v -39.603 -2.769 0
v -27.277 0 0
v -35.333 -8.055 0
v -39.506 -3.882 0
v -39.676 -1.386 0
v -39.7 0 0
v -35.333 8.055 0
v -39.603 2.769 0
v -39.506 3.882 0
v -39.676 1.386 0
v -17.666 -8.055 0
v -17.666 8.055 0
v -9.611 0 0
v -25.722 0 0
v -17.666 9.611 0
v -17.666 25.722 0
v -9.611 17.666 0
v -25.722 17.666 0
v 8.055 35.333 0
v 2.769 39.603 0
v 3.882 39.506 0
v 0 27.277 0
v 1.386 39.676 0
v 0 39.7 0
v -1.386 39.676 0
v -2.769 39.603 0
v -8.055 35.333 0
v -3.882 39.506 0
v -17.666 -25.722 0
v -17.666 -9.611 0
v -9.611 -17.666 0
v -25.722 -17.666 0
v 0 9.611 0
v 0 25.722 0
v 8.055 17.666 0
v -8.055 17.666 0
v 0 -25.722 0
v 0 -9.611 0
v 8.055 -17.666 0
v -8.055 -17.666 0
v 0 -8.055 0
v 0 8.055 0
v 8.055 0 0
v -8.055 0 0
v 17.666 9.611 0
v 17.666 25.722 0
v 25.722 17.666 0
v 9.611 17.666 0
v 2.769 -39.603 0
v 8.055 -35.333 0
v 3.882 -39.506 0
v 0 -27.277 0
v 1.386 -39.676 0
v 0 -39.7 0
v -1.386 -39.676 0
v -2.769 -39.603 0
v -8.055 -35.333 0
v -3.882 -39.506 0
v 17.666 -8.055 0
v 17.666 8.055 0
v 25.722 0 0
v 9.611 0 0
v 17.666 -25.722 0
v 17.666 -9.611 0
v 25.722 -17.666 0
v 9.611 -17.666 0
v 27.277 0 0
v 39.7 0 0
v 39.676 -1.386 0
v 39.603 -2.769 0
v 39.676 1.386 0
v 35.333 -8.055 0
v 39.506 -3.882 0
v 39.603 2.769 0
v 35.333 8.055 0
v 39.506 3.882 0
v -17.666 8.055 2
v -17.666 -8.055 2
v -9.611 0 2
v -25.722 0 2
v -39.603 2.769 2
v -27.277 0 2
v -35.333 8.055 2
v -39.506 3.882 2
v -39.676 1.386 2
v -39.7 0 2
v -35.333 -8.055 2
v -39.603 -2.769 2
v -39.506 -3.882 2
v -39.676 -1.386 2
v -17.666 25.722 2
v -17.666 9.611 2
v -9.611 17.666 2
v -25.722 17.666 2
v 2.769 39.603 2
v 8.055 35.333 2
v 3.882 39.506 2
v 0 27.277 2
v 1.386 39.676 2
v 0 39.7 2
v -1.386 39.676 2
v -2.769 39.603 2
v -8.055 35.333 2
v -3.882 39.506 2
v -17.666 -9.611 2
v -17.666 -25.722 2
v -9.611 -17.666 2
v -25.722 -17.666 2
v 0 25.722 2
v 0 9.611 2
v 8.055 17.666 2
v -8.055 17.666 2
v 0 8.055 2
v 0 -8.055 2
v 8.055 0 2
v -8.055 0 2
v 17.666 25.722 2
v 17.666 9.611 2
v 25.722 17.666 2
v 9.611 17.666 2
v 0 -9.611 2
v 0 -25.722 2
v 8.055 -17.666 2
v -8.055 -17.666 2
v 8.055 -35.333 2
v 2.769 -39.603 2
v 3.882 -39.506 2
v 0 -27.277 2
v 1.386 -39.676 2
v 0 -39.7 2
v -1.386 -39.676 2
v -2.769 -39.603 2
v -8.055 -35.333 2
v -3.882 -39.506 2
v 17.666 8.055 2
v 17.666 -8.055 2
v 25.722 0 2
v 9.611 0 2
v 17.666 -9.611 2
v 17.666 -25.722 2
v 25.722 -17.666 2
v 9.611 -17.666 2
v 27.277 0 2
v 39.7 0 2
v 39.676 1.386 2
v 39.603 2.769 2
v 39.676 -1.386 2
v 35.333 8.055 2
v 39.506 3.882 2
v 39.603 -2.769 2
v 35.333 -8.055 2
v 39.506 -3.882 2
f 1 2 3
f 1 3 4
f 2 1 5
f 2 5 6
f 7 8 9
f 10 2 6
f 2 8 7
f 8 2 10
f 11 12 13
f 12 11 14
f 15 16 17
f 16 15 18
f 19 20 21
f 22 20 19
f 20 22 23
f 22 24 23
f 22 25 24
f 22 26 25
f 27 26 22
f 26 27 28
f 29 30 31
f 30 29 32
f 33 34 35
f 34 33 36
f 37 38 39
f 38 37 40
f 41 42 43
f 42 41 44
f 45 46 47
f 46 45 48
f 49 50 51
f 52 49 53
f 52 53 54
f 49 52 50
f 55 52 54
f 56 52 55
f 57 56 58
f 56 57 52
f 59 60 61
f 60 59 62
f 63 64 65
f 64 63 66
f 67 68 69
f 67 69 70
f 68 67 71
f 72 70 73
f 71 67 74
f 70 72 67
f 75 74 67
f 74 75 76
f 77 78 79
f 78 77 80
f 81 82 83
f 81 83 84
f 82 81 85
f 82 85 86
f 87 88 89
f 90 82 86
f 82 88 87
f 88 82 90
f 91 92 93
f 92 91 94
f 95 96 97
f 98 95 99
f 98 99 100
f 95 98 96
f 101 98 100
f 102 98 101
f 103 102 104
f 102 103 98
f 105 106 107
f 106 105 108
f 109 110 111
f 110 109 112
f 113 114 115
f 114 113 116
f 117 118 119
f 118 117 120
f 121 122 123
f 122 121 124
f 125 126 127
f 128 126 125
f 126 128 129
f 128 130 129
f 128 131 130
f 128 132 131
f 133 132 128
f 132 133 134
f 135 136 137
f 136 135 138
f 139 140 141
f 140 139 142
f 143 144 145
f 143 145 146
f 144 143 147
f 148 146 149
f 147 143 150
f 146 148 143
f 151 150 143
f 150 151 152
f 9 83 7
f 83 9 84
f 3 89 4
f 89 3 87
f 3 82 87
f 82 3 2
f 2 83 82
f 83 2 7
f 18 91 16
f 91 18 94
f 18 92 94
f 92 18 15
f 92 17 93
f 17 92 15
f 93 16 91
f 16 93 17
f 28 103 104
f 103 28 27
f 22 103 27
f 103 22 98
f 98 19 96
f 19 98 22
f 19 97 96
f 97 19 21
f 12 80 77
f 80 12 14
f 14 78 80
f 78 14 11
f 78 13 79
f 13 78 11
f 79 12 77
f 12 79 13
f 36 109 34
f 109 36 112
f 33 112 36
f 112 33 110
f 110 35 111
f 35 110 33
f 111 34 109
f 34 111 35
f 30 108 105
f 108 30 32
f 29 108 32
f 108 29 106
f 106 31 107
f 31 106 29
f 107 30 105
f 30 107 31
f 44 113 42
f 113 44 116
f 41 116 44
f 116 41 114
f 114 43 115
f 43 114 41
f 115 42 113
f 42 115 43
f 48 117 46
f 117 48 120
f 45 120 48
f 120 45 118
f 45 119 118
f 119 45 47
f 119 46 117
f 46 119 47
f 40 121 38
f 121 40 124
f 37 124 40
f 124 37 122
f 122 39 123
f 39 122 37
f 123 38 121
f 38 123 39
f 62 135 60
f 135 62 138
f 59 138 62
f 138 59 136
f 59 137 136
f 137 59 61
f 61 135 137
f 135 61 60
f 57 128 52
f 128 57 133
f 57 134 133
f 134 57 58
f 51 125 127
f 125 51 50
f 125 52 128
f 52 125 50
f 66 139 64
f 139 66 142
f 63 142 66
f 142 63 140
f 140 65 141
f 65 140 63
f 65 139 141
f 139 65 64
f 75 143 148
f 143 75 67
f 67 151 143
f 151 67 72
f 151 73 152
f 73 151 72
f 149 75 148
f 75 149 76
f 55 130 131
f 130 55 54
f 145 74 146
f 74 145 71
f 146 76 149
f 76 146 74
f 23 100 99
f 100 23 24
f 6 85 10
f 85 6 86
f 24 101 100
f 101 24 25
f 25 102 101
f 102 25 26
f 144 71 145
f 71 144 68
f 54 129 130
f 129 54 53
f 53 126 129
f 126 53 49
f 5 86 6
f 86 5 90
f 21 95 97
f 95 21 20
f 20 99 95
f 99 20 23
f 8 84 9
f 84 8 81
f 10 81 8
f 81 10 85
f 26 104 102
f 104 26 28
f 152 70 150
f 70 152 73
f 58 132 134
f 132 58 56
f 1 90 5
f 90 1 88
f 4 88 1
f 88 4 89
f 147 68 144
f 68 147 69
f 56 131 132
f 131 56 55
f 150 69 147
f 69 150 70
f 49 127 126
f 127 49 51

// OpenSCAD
// file: bellum_text_traced.scad
// bellum_text_traced.scad
// "Bellum" lettering traced from the source logo image with
// OpenCV (4x cubic upscale, threshold, morphological cleanup,
// approxPolyDP 2px). Coordinates are centered, Y-up, and
// normalized to 100 units of total width.
// Regenerate with scratchpad/trace2_emit.py if retuning.

module bellum_traced_2d() {
    polygon(points=[[-49.89,10.25],[-49.89,9.49],[-49.35,8.94],[-46.95,8.83],[-45.64,7.74],[-45.09,6.11],[-45.42,-2.07],[-45.09,-10.25],[-46.07,-11.56],[-49.24,-11.89],[-49.56,-12.32],[-49.45,-13.30],[-30.59,-13.41],[-28.08,-12.87],[-26.23,-11.45],[-25.03,-9.27],[-24.48,-6.65],[-25.03,-4.80],[-26.01,-3.27],[-29.28,-0.55],[-27.10,2.84],[-27.32,5.78],[-27.97,6.98],[-29.28,8.29],[-31.13,9.38],[-35.50,10.36],[-40.62,-1.42],[-39.97,-0.98],[-35.06,-0.98],[-33.10,-1.31],[-31.68,-1.96],[-30.04,-3.60],[-29.06,-5.89],[-29.06,-7.96],[-29.83,-9.49],[-31.35,-10.91],[-33.86,-11.67],[-37.35,-11.89],[-39.97,-11.34],[-40.95,-10.25],[-41.38,8.40],[-40.84,8.83],[-38.99,9.05],[-35.93,8.83],[-33.32,7.85],[-31.57,6.32],[-30.92,4.91],[-31.24,2.40],[-32.55,0.98],[-33.86,0.33],[-39.31,0.00],[-40.29,0.44],[-40.95,1.53],[-41.49,6.22]], paths=[[0, 1, 2, 3, 4, 5, 6, 7, 8, 9, 10, 11, 12, 13, 14, 15, 16, 17, 18, 19, 20, 21, 22, 23, 24, 25], [26, 27, 28, 29, 30, 31, 32, 33, 34, 35, 36, 37, 38, 39], [40, 41, 42, 43, 44, 45, 46, 47, 48, 49, 50, 51, 52, 53]]);
    polygon(points=[[-21.76,1.53],[-23.28,-0.44],[-23.72,-1.85],[-23.72,-3.82],[-22.96,-6.22],[-21.54,-7.63],[-19.79,-8.40],[-15.43,-8.40],[-13.69,-8.07],[-12.05,-7.09],[-10.09,-5.13],[-10.31,-4.69],[-11.07,-4.58],[-13.36,-6.43],[-15.76,-7.20],[-18.27,-6.54],[-20.34,-4.47],[-20.77,-3.49],[-20.67,-2.62],[-20.01,-2.18],[-18.48,-2.07],[-12.70,-2.40],[-12.05,-1.96],[-12.27,0.00],[-13.90,1.96],[-16.30,2.94],[-19.68,2.62],[-20.34,-0.22],[-19.47,0.98],[-17.61,1.96],[-15.98,1.53],[-14.78,0.00],[-14.99,-0.76],[-15.98,-0.98],[-20.01,-0.98]], paths=[[0, 1, 2, 3, 4, 5, 6, 7, 8, 9, 10, 11, 12, 13, 14, 15, 16, 17, 18, 19, 20, 21, 22, 23, 24, 25, 26], [27, 28, 29, 30, 31, 32, 33, 34]]);
    polygon(points=[[-3.87,12.98],[-4.85,12.87],[-6.60,12.00],[-8.02,10.80],[-7.80,10.25],[-6.49,9.60],[-6.16,8.62],[-6.16,-3.93],[-6.49,-6.54],[-7.36,-7.20],[-8.67,-7.31],[-9.00,-7.74],[-8.89,-8.29],[-8.23,-8.62],[-1.04,-8.40],[-1.04,-7.85],[-1.47,-7.42],[-3.44,-6.98],[-3.98,-5.78],[-3.76,11.01],[-3.44,11.67],[-3.44,12.54]], paths=[[0, 1, 2, 3, 4, 5, 6, 7, 8, 9, 10, 11, 12, 13, 14, 15, 16, 17, 18, 19, 20, 21]]);
    polygon(points=[[5.07,13.52],[4.31,13.41],[0.82,11.56],[-0.16,10.47],[0.27,9.71],[1.47,10.03],[2.13,9.49],[2.34,7.85],[2.24,-5.45],[1.58,-7.20],[-0.05,-7.63],[0.05,-8.18],[0.93,-8.51],[7.25,-8.51],[7.58,-8.18],[6.92,-7.20],[6.05,-7.20],[5.07,-6.32],[5.18,-1.85],[4.85,-0.65],[5.18,0.33],[5.18,11.34],[5.73,12.54],[5.62,13.20]], paths=[[0, 1, 2, 3, 4, 5, 6, 7, 8, 9, 10, 11, 12, 13, 14, 15, 16, 17, 18, 19, 20, 21, 22, 23]]);
    polygon(points=[[9.00,1.64],[9.11,0.87],[10.09,0.76],[10.74,0.00],[11.07,-0.98],[11.07,-5.56],[11.61,-7.31],[12.60,-8.18],[13.36,-8.51],[16.19,-8.51],[18.92,-7.31],[19.47,-7.31],[20.12,-8.18],[20.67,-8.29],[23.83,-8.18],[24.48,-7.74],[24.37,-6.87],[23.17,-6.87],[22.52,-6.32],[22.19,-0.33],[22.63,0.55],[23.61,1.31],[23.72,2.07],[17.83,2.18],[17.72,1.64],[19.25,0.98],[19.68,0.22],[19.68,-4.58],[18.38,-6.32],[16.74,-6.87],[15.65,-6.87],[14.67,-6.43],[13.69,-4.80],[13.69,0.22],[14.67,2.07],[10.41,2.29]], paths=[[0, 1, 2, 3, 4, 5, 6, 7, 8, 9, 10, 11, 12, 13, 14, 15, 16, 17, 18, 19, 20, 21, 22, 23, 24, 25, 26, 27, 28, 29, 30, 31, 32, 33, 34, 35]]);
    polygon(points=[[27.21,1.85],[27.21,1.20],[28.95,0.11],[29.06,-6.22],[28.52,-7.20],[26.55,-7.52],[26.44,-8.29],[26.77,-8.62],[30.59,-8.83],[32.99,-8.62],[33.53,-8.29],[33.10,-7.31],[32.12,-7.20],[31.57,-6.65],[31.57,-0.87],[32.22,0.00],[34.41,0.98],[36.04,0.76],[36.70,0.11],[37.24,-1.53],[37.24,-6.00],[36.91,-6.76],[35.50,-7.74],[35.61,-8.18],[36.48,-8.51],[40.84,-8.51],[41.60,-8.07],[41.60,-7.74],[40.51,-7.20],[39.97,-6.43],[39.97,-1.96],[40.73,-0.55],[42.91,0.98],[44.66,0.65],[45.53,-0.33],[45.75,-1.09],[45.53,-6.43],[44.98,-7.20],[44.00,-7.52],[43.78,-8.07],[44.66,-8.51],[49.45,-8.62],[50.00,-8.18],[49.56,-7.42],[48.80,-7.42],[48.15,-6.76],[48.36,0.00],[47.93,1.31],[46.51,2.62],[43.68,2.94],[41.82,2.07],[40.29,0.87],[39.86,0.87],[38.66,2.51],[37.35,2.94],[34.95,2.51],[32.22,1.20],[31.46,1.42],[31.79,2.62],[31.24,3.05],[29.28,2.94]], paths=[[0, 1, 2, 3, 4, 5, 6, 7, 8, 9, 10, 11, 12, 13, 14, 15, 16, 17, 18, 19, 20, 21, 22, 23, 24, 25, 26, 27, 28, 29, 30, 31, 32, 33, 34, 35, 36, 37, 38, 39, 40, 41, 42, 43, 44, 45, 46, 47, 48, 49, 50, 51, 52, 53, 54, 55, 56, 57, 58, 59, 60]]);
}

bellum_traced_2d();
// file: bellum_badge_004.scad
// bellum_badge_004.scad
// v004: corrected again after a closer look at the photo. The design is a
//   WHITE circle with a 5x5 checkerboard rotated 45 degrees on top: black
//   corner tiles, black center tile, thin white grout, and the diamond's
//   four corners slightly clipped by the circle rim. (v003's full-circle
//   checkerboard misread glare on the button photo as extra tiles.)
//
// Printable parts (print in the named color, glue together):
//   white_body()         white - 3 mm disc + 2 mm top layer with square
//                        pockets; the top layer IS the white circle, white
//                        tiles, and grout, all one solid piece
//   black_tiles()        black - 13 drop-in tiles (4 rim-clipped), flush
//                        with the white top when seated
//   text_plate_black()   black - outline plate behind the letters
//   text_letters_white() white - "Bellum" letters (6 pieces), glue on plate
//
// Everything scales from badge_d; thicknesses and clearance are absolute.
// v002/v003 history: lettering traced from the photo (bellum_text_traced).

$fa = 2;
$fs = 0.4;

// ---- scale ----
badge_d = 80;       // badge diameter: THE scale knob
n       = 5;        // checker tiles per row (odd -> black corners + center)

// ---- thicknesses (absolute mm, independent of badge_d) ----
t_base = 3;         // white disc under the pockets
t_top  = 2;         // pocketed top layer; tiles sit flush (total = 5)
t_text = 1.2;       // each text layer (plate and letters)
clr    = 0.15;      // per-side XY clearance for the drop-in tiles

// ---- proportions (fractions of badge_d, measured from the photo) ----
diag_frac = 1.09;                       // diamond diagonal vs diameter:
                                        // the four corners clip the rim
grout_w   = max(0.008 * badge_d, 0.8);  // white gap between tiles
text_w    = 0.88 * badge_d;             // width of "Bellum"
text_dy   = 0.015 * badge_d;            // text sits a touch above center
outline_w = max(0.015 * badge_d, 1.2);  // black outline around the letters

use <bellum_text_traced.scad>  // lettering traced from the logo photo

// ---- derived ----
R     = badge_d / 2;
sq_f  = diag_frac * badge_d / sqrt(2);  // checker field side
tile  = (sq_f - (n - 1) * grout_w) / n; // tile size
pitch = tile + grout_w;

eps = 0.01;

// ---------------- 2D shapes ----------------

// black tile positions: (i+j) even -> corners and center are black
module black_squares_2d(shrink = 0) {
    rotate(45)
        for (i = [0 : n - 1], j = [0 : n - 1])
            if ((i + j) % 2 == 0)
                translate([(i - (n - 1) / 2) * pitch,
                           (j - (n - 1) / 2) * pitch])
                    square(tile - 2 * shrink, center = true);
}

// traced lettering is normalized to 100 units wide, centered
module text_2d() {
    translate([0, text_dy]) scale(text_w / 100) bellum_traced_2d();
}

// ---------------- printable parts (each flat on Z=0) ----------------

// disc + pocketed top layer, one white piece
module white_body() {
    linear_extrude(t_base) circle(R);
    translate([0, 0, t_base])
        linear_extrude(t_top) difference() {
            circle(R);
            black_squares_2d();  // pockets; rim clips the 4 corner ones
        }
}

// drop-in tiles, rim-clipped ones trimmed slightly inside the disc edge
module black_tiles() {
    intersection() {
        linear_extrude(t_top) black_squares_2d(clr);
        cylinder(h = t_top + eps, r = R - 0.3);
    }
}

module text_plate_black() {
    linear_extrude(t_text) offset(r = outline_w) text_2d();
}

module text_letters_white() {
    linear_extrude(t_text) text_2d();
}

// ---------------- assembled preview ----------------

module assembly() {
    color("white") white_body();
    color([0.15, 0.15, 0.15]) translate([0, 0, t_base]) black_tiles();
    color([0.15, 0.15, 0.15]) translate([0, 0, t_base + t_top])
        text_plate_black();
    color("white") translate([0, 0, t_base + t_top + t_text])
        text_letters_white();
}

assembly();
// main file
// bellum_badge_004_tiles.scad - print in BLACK
// 13 drop-in checker tiles (4 rim-clipped); seat them flush in the pockets.
use <bellum_badge_004.scad>
black_tiles();
